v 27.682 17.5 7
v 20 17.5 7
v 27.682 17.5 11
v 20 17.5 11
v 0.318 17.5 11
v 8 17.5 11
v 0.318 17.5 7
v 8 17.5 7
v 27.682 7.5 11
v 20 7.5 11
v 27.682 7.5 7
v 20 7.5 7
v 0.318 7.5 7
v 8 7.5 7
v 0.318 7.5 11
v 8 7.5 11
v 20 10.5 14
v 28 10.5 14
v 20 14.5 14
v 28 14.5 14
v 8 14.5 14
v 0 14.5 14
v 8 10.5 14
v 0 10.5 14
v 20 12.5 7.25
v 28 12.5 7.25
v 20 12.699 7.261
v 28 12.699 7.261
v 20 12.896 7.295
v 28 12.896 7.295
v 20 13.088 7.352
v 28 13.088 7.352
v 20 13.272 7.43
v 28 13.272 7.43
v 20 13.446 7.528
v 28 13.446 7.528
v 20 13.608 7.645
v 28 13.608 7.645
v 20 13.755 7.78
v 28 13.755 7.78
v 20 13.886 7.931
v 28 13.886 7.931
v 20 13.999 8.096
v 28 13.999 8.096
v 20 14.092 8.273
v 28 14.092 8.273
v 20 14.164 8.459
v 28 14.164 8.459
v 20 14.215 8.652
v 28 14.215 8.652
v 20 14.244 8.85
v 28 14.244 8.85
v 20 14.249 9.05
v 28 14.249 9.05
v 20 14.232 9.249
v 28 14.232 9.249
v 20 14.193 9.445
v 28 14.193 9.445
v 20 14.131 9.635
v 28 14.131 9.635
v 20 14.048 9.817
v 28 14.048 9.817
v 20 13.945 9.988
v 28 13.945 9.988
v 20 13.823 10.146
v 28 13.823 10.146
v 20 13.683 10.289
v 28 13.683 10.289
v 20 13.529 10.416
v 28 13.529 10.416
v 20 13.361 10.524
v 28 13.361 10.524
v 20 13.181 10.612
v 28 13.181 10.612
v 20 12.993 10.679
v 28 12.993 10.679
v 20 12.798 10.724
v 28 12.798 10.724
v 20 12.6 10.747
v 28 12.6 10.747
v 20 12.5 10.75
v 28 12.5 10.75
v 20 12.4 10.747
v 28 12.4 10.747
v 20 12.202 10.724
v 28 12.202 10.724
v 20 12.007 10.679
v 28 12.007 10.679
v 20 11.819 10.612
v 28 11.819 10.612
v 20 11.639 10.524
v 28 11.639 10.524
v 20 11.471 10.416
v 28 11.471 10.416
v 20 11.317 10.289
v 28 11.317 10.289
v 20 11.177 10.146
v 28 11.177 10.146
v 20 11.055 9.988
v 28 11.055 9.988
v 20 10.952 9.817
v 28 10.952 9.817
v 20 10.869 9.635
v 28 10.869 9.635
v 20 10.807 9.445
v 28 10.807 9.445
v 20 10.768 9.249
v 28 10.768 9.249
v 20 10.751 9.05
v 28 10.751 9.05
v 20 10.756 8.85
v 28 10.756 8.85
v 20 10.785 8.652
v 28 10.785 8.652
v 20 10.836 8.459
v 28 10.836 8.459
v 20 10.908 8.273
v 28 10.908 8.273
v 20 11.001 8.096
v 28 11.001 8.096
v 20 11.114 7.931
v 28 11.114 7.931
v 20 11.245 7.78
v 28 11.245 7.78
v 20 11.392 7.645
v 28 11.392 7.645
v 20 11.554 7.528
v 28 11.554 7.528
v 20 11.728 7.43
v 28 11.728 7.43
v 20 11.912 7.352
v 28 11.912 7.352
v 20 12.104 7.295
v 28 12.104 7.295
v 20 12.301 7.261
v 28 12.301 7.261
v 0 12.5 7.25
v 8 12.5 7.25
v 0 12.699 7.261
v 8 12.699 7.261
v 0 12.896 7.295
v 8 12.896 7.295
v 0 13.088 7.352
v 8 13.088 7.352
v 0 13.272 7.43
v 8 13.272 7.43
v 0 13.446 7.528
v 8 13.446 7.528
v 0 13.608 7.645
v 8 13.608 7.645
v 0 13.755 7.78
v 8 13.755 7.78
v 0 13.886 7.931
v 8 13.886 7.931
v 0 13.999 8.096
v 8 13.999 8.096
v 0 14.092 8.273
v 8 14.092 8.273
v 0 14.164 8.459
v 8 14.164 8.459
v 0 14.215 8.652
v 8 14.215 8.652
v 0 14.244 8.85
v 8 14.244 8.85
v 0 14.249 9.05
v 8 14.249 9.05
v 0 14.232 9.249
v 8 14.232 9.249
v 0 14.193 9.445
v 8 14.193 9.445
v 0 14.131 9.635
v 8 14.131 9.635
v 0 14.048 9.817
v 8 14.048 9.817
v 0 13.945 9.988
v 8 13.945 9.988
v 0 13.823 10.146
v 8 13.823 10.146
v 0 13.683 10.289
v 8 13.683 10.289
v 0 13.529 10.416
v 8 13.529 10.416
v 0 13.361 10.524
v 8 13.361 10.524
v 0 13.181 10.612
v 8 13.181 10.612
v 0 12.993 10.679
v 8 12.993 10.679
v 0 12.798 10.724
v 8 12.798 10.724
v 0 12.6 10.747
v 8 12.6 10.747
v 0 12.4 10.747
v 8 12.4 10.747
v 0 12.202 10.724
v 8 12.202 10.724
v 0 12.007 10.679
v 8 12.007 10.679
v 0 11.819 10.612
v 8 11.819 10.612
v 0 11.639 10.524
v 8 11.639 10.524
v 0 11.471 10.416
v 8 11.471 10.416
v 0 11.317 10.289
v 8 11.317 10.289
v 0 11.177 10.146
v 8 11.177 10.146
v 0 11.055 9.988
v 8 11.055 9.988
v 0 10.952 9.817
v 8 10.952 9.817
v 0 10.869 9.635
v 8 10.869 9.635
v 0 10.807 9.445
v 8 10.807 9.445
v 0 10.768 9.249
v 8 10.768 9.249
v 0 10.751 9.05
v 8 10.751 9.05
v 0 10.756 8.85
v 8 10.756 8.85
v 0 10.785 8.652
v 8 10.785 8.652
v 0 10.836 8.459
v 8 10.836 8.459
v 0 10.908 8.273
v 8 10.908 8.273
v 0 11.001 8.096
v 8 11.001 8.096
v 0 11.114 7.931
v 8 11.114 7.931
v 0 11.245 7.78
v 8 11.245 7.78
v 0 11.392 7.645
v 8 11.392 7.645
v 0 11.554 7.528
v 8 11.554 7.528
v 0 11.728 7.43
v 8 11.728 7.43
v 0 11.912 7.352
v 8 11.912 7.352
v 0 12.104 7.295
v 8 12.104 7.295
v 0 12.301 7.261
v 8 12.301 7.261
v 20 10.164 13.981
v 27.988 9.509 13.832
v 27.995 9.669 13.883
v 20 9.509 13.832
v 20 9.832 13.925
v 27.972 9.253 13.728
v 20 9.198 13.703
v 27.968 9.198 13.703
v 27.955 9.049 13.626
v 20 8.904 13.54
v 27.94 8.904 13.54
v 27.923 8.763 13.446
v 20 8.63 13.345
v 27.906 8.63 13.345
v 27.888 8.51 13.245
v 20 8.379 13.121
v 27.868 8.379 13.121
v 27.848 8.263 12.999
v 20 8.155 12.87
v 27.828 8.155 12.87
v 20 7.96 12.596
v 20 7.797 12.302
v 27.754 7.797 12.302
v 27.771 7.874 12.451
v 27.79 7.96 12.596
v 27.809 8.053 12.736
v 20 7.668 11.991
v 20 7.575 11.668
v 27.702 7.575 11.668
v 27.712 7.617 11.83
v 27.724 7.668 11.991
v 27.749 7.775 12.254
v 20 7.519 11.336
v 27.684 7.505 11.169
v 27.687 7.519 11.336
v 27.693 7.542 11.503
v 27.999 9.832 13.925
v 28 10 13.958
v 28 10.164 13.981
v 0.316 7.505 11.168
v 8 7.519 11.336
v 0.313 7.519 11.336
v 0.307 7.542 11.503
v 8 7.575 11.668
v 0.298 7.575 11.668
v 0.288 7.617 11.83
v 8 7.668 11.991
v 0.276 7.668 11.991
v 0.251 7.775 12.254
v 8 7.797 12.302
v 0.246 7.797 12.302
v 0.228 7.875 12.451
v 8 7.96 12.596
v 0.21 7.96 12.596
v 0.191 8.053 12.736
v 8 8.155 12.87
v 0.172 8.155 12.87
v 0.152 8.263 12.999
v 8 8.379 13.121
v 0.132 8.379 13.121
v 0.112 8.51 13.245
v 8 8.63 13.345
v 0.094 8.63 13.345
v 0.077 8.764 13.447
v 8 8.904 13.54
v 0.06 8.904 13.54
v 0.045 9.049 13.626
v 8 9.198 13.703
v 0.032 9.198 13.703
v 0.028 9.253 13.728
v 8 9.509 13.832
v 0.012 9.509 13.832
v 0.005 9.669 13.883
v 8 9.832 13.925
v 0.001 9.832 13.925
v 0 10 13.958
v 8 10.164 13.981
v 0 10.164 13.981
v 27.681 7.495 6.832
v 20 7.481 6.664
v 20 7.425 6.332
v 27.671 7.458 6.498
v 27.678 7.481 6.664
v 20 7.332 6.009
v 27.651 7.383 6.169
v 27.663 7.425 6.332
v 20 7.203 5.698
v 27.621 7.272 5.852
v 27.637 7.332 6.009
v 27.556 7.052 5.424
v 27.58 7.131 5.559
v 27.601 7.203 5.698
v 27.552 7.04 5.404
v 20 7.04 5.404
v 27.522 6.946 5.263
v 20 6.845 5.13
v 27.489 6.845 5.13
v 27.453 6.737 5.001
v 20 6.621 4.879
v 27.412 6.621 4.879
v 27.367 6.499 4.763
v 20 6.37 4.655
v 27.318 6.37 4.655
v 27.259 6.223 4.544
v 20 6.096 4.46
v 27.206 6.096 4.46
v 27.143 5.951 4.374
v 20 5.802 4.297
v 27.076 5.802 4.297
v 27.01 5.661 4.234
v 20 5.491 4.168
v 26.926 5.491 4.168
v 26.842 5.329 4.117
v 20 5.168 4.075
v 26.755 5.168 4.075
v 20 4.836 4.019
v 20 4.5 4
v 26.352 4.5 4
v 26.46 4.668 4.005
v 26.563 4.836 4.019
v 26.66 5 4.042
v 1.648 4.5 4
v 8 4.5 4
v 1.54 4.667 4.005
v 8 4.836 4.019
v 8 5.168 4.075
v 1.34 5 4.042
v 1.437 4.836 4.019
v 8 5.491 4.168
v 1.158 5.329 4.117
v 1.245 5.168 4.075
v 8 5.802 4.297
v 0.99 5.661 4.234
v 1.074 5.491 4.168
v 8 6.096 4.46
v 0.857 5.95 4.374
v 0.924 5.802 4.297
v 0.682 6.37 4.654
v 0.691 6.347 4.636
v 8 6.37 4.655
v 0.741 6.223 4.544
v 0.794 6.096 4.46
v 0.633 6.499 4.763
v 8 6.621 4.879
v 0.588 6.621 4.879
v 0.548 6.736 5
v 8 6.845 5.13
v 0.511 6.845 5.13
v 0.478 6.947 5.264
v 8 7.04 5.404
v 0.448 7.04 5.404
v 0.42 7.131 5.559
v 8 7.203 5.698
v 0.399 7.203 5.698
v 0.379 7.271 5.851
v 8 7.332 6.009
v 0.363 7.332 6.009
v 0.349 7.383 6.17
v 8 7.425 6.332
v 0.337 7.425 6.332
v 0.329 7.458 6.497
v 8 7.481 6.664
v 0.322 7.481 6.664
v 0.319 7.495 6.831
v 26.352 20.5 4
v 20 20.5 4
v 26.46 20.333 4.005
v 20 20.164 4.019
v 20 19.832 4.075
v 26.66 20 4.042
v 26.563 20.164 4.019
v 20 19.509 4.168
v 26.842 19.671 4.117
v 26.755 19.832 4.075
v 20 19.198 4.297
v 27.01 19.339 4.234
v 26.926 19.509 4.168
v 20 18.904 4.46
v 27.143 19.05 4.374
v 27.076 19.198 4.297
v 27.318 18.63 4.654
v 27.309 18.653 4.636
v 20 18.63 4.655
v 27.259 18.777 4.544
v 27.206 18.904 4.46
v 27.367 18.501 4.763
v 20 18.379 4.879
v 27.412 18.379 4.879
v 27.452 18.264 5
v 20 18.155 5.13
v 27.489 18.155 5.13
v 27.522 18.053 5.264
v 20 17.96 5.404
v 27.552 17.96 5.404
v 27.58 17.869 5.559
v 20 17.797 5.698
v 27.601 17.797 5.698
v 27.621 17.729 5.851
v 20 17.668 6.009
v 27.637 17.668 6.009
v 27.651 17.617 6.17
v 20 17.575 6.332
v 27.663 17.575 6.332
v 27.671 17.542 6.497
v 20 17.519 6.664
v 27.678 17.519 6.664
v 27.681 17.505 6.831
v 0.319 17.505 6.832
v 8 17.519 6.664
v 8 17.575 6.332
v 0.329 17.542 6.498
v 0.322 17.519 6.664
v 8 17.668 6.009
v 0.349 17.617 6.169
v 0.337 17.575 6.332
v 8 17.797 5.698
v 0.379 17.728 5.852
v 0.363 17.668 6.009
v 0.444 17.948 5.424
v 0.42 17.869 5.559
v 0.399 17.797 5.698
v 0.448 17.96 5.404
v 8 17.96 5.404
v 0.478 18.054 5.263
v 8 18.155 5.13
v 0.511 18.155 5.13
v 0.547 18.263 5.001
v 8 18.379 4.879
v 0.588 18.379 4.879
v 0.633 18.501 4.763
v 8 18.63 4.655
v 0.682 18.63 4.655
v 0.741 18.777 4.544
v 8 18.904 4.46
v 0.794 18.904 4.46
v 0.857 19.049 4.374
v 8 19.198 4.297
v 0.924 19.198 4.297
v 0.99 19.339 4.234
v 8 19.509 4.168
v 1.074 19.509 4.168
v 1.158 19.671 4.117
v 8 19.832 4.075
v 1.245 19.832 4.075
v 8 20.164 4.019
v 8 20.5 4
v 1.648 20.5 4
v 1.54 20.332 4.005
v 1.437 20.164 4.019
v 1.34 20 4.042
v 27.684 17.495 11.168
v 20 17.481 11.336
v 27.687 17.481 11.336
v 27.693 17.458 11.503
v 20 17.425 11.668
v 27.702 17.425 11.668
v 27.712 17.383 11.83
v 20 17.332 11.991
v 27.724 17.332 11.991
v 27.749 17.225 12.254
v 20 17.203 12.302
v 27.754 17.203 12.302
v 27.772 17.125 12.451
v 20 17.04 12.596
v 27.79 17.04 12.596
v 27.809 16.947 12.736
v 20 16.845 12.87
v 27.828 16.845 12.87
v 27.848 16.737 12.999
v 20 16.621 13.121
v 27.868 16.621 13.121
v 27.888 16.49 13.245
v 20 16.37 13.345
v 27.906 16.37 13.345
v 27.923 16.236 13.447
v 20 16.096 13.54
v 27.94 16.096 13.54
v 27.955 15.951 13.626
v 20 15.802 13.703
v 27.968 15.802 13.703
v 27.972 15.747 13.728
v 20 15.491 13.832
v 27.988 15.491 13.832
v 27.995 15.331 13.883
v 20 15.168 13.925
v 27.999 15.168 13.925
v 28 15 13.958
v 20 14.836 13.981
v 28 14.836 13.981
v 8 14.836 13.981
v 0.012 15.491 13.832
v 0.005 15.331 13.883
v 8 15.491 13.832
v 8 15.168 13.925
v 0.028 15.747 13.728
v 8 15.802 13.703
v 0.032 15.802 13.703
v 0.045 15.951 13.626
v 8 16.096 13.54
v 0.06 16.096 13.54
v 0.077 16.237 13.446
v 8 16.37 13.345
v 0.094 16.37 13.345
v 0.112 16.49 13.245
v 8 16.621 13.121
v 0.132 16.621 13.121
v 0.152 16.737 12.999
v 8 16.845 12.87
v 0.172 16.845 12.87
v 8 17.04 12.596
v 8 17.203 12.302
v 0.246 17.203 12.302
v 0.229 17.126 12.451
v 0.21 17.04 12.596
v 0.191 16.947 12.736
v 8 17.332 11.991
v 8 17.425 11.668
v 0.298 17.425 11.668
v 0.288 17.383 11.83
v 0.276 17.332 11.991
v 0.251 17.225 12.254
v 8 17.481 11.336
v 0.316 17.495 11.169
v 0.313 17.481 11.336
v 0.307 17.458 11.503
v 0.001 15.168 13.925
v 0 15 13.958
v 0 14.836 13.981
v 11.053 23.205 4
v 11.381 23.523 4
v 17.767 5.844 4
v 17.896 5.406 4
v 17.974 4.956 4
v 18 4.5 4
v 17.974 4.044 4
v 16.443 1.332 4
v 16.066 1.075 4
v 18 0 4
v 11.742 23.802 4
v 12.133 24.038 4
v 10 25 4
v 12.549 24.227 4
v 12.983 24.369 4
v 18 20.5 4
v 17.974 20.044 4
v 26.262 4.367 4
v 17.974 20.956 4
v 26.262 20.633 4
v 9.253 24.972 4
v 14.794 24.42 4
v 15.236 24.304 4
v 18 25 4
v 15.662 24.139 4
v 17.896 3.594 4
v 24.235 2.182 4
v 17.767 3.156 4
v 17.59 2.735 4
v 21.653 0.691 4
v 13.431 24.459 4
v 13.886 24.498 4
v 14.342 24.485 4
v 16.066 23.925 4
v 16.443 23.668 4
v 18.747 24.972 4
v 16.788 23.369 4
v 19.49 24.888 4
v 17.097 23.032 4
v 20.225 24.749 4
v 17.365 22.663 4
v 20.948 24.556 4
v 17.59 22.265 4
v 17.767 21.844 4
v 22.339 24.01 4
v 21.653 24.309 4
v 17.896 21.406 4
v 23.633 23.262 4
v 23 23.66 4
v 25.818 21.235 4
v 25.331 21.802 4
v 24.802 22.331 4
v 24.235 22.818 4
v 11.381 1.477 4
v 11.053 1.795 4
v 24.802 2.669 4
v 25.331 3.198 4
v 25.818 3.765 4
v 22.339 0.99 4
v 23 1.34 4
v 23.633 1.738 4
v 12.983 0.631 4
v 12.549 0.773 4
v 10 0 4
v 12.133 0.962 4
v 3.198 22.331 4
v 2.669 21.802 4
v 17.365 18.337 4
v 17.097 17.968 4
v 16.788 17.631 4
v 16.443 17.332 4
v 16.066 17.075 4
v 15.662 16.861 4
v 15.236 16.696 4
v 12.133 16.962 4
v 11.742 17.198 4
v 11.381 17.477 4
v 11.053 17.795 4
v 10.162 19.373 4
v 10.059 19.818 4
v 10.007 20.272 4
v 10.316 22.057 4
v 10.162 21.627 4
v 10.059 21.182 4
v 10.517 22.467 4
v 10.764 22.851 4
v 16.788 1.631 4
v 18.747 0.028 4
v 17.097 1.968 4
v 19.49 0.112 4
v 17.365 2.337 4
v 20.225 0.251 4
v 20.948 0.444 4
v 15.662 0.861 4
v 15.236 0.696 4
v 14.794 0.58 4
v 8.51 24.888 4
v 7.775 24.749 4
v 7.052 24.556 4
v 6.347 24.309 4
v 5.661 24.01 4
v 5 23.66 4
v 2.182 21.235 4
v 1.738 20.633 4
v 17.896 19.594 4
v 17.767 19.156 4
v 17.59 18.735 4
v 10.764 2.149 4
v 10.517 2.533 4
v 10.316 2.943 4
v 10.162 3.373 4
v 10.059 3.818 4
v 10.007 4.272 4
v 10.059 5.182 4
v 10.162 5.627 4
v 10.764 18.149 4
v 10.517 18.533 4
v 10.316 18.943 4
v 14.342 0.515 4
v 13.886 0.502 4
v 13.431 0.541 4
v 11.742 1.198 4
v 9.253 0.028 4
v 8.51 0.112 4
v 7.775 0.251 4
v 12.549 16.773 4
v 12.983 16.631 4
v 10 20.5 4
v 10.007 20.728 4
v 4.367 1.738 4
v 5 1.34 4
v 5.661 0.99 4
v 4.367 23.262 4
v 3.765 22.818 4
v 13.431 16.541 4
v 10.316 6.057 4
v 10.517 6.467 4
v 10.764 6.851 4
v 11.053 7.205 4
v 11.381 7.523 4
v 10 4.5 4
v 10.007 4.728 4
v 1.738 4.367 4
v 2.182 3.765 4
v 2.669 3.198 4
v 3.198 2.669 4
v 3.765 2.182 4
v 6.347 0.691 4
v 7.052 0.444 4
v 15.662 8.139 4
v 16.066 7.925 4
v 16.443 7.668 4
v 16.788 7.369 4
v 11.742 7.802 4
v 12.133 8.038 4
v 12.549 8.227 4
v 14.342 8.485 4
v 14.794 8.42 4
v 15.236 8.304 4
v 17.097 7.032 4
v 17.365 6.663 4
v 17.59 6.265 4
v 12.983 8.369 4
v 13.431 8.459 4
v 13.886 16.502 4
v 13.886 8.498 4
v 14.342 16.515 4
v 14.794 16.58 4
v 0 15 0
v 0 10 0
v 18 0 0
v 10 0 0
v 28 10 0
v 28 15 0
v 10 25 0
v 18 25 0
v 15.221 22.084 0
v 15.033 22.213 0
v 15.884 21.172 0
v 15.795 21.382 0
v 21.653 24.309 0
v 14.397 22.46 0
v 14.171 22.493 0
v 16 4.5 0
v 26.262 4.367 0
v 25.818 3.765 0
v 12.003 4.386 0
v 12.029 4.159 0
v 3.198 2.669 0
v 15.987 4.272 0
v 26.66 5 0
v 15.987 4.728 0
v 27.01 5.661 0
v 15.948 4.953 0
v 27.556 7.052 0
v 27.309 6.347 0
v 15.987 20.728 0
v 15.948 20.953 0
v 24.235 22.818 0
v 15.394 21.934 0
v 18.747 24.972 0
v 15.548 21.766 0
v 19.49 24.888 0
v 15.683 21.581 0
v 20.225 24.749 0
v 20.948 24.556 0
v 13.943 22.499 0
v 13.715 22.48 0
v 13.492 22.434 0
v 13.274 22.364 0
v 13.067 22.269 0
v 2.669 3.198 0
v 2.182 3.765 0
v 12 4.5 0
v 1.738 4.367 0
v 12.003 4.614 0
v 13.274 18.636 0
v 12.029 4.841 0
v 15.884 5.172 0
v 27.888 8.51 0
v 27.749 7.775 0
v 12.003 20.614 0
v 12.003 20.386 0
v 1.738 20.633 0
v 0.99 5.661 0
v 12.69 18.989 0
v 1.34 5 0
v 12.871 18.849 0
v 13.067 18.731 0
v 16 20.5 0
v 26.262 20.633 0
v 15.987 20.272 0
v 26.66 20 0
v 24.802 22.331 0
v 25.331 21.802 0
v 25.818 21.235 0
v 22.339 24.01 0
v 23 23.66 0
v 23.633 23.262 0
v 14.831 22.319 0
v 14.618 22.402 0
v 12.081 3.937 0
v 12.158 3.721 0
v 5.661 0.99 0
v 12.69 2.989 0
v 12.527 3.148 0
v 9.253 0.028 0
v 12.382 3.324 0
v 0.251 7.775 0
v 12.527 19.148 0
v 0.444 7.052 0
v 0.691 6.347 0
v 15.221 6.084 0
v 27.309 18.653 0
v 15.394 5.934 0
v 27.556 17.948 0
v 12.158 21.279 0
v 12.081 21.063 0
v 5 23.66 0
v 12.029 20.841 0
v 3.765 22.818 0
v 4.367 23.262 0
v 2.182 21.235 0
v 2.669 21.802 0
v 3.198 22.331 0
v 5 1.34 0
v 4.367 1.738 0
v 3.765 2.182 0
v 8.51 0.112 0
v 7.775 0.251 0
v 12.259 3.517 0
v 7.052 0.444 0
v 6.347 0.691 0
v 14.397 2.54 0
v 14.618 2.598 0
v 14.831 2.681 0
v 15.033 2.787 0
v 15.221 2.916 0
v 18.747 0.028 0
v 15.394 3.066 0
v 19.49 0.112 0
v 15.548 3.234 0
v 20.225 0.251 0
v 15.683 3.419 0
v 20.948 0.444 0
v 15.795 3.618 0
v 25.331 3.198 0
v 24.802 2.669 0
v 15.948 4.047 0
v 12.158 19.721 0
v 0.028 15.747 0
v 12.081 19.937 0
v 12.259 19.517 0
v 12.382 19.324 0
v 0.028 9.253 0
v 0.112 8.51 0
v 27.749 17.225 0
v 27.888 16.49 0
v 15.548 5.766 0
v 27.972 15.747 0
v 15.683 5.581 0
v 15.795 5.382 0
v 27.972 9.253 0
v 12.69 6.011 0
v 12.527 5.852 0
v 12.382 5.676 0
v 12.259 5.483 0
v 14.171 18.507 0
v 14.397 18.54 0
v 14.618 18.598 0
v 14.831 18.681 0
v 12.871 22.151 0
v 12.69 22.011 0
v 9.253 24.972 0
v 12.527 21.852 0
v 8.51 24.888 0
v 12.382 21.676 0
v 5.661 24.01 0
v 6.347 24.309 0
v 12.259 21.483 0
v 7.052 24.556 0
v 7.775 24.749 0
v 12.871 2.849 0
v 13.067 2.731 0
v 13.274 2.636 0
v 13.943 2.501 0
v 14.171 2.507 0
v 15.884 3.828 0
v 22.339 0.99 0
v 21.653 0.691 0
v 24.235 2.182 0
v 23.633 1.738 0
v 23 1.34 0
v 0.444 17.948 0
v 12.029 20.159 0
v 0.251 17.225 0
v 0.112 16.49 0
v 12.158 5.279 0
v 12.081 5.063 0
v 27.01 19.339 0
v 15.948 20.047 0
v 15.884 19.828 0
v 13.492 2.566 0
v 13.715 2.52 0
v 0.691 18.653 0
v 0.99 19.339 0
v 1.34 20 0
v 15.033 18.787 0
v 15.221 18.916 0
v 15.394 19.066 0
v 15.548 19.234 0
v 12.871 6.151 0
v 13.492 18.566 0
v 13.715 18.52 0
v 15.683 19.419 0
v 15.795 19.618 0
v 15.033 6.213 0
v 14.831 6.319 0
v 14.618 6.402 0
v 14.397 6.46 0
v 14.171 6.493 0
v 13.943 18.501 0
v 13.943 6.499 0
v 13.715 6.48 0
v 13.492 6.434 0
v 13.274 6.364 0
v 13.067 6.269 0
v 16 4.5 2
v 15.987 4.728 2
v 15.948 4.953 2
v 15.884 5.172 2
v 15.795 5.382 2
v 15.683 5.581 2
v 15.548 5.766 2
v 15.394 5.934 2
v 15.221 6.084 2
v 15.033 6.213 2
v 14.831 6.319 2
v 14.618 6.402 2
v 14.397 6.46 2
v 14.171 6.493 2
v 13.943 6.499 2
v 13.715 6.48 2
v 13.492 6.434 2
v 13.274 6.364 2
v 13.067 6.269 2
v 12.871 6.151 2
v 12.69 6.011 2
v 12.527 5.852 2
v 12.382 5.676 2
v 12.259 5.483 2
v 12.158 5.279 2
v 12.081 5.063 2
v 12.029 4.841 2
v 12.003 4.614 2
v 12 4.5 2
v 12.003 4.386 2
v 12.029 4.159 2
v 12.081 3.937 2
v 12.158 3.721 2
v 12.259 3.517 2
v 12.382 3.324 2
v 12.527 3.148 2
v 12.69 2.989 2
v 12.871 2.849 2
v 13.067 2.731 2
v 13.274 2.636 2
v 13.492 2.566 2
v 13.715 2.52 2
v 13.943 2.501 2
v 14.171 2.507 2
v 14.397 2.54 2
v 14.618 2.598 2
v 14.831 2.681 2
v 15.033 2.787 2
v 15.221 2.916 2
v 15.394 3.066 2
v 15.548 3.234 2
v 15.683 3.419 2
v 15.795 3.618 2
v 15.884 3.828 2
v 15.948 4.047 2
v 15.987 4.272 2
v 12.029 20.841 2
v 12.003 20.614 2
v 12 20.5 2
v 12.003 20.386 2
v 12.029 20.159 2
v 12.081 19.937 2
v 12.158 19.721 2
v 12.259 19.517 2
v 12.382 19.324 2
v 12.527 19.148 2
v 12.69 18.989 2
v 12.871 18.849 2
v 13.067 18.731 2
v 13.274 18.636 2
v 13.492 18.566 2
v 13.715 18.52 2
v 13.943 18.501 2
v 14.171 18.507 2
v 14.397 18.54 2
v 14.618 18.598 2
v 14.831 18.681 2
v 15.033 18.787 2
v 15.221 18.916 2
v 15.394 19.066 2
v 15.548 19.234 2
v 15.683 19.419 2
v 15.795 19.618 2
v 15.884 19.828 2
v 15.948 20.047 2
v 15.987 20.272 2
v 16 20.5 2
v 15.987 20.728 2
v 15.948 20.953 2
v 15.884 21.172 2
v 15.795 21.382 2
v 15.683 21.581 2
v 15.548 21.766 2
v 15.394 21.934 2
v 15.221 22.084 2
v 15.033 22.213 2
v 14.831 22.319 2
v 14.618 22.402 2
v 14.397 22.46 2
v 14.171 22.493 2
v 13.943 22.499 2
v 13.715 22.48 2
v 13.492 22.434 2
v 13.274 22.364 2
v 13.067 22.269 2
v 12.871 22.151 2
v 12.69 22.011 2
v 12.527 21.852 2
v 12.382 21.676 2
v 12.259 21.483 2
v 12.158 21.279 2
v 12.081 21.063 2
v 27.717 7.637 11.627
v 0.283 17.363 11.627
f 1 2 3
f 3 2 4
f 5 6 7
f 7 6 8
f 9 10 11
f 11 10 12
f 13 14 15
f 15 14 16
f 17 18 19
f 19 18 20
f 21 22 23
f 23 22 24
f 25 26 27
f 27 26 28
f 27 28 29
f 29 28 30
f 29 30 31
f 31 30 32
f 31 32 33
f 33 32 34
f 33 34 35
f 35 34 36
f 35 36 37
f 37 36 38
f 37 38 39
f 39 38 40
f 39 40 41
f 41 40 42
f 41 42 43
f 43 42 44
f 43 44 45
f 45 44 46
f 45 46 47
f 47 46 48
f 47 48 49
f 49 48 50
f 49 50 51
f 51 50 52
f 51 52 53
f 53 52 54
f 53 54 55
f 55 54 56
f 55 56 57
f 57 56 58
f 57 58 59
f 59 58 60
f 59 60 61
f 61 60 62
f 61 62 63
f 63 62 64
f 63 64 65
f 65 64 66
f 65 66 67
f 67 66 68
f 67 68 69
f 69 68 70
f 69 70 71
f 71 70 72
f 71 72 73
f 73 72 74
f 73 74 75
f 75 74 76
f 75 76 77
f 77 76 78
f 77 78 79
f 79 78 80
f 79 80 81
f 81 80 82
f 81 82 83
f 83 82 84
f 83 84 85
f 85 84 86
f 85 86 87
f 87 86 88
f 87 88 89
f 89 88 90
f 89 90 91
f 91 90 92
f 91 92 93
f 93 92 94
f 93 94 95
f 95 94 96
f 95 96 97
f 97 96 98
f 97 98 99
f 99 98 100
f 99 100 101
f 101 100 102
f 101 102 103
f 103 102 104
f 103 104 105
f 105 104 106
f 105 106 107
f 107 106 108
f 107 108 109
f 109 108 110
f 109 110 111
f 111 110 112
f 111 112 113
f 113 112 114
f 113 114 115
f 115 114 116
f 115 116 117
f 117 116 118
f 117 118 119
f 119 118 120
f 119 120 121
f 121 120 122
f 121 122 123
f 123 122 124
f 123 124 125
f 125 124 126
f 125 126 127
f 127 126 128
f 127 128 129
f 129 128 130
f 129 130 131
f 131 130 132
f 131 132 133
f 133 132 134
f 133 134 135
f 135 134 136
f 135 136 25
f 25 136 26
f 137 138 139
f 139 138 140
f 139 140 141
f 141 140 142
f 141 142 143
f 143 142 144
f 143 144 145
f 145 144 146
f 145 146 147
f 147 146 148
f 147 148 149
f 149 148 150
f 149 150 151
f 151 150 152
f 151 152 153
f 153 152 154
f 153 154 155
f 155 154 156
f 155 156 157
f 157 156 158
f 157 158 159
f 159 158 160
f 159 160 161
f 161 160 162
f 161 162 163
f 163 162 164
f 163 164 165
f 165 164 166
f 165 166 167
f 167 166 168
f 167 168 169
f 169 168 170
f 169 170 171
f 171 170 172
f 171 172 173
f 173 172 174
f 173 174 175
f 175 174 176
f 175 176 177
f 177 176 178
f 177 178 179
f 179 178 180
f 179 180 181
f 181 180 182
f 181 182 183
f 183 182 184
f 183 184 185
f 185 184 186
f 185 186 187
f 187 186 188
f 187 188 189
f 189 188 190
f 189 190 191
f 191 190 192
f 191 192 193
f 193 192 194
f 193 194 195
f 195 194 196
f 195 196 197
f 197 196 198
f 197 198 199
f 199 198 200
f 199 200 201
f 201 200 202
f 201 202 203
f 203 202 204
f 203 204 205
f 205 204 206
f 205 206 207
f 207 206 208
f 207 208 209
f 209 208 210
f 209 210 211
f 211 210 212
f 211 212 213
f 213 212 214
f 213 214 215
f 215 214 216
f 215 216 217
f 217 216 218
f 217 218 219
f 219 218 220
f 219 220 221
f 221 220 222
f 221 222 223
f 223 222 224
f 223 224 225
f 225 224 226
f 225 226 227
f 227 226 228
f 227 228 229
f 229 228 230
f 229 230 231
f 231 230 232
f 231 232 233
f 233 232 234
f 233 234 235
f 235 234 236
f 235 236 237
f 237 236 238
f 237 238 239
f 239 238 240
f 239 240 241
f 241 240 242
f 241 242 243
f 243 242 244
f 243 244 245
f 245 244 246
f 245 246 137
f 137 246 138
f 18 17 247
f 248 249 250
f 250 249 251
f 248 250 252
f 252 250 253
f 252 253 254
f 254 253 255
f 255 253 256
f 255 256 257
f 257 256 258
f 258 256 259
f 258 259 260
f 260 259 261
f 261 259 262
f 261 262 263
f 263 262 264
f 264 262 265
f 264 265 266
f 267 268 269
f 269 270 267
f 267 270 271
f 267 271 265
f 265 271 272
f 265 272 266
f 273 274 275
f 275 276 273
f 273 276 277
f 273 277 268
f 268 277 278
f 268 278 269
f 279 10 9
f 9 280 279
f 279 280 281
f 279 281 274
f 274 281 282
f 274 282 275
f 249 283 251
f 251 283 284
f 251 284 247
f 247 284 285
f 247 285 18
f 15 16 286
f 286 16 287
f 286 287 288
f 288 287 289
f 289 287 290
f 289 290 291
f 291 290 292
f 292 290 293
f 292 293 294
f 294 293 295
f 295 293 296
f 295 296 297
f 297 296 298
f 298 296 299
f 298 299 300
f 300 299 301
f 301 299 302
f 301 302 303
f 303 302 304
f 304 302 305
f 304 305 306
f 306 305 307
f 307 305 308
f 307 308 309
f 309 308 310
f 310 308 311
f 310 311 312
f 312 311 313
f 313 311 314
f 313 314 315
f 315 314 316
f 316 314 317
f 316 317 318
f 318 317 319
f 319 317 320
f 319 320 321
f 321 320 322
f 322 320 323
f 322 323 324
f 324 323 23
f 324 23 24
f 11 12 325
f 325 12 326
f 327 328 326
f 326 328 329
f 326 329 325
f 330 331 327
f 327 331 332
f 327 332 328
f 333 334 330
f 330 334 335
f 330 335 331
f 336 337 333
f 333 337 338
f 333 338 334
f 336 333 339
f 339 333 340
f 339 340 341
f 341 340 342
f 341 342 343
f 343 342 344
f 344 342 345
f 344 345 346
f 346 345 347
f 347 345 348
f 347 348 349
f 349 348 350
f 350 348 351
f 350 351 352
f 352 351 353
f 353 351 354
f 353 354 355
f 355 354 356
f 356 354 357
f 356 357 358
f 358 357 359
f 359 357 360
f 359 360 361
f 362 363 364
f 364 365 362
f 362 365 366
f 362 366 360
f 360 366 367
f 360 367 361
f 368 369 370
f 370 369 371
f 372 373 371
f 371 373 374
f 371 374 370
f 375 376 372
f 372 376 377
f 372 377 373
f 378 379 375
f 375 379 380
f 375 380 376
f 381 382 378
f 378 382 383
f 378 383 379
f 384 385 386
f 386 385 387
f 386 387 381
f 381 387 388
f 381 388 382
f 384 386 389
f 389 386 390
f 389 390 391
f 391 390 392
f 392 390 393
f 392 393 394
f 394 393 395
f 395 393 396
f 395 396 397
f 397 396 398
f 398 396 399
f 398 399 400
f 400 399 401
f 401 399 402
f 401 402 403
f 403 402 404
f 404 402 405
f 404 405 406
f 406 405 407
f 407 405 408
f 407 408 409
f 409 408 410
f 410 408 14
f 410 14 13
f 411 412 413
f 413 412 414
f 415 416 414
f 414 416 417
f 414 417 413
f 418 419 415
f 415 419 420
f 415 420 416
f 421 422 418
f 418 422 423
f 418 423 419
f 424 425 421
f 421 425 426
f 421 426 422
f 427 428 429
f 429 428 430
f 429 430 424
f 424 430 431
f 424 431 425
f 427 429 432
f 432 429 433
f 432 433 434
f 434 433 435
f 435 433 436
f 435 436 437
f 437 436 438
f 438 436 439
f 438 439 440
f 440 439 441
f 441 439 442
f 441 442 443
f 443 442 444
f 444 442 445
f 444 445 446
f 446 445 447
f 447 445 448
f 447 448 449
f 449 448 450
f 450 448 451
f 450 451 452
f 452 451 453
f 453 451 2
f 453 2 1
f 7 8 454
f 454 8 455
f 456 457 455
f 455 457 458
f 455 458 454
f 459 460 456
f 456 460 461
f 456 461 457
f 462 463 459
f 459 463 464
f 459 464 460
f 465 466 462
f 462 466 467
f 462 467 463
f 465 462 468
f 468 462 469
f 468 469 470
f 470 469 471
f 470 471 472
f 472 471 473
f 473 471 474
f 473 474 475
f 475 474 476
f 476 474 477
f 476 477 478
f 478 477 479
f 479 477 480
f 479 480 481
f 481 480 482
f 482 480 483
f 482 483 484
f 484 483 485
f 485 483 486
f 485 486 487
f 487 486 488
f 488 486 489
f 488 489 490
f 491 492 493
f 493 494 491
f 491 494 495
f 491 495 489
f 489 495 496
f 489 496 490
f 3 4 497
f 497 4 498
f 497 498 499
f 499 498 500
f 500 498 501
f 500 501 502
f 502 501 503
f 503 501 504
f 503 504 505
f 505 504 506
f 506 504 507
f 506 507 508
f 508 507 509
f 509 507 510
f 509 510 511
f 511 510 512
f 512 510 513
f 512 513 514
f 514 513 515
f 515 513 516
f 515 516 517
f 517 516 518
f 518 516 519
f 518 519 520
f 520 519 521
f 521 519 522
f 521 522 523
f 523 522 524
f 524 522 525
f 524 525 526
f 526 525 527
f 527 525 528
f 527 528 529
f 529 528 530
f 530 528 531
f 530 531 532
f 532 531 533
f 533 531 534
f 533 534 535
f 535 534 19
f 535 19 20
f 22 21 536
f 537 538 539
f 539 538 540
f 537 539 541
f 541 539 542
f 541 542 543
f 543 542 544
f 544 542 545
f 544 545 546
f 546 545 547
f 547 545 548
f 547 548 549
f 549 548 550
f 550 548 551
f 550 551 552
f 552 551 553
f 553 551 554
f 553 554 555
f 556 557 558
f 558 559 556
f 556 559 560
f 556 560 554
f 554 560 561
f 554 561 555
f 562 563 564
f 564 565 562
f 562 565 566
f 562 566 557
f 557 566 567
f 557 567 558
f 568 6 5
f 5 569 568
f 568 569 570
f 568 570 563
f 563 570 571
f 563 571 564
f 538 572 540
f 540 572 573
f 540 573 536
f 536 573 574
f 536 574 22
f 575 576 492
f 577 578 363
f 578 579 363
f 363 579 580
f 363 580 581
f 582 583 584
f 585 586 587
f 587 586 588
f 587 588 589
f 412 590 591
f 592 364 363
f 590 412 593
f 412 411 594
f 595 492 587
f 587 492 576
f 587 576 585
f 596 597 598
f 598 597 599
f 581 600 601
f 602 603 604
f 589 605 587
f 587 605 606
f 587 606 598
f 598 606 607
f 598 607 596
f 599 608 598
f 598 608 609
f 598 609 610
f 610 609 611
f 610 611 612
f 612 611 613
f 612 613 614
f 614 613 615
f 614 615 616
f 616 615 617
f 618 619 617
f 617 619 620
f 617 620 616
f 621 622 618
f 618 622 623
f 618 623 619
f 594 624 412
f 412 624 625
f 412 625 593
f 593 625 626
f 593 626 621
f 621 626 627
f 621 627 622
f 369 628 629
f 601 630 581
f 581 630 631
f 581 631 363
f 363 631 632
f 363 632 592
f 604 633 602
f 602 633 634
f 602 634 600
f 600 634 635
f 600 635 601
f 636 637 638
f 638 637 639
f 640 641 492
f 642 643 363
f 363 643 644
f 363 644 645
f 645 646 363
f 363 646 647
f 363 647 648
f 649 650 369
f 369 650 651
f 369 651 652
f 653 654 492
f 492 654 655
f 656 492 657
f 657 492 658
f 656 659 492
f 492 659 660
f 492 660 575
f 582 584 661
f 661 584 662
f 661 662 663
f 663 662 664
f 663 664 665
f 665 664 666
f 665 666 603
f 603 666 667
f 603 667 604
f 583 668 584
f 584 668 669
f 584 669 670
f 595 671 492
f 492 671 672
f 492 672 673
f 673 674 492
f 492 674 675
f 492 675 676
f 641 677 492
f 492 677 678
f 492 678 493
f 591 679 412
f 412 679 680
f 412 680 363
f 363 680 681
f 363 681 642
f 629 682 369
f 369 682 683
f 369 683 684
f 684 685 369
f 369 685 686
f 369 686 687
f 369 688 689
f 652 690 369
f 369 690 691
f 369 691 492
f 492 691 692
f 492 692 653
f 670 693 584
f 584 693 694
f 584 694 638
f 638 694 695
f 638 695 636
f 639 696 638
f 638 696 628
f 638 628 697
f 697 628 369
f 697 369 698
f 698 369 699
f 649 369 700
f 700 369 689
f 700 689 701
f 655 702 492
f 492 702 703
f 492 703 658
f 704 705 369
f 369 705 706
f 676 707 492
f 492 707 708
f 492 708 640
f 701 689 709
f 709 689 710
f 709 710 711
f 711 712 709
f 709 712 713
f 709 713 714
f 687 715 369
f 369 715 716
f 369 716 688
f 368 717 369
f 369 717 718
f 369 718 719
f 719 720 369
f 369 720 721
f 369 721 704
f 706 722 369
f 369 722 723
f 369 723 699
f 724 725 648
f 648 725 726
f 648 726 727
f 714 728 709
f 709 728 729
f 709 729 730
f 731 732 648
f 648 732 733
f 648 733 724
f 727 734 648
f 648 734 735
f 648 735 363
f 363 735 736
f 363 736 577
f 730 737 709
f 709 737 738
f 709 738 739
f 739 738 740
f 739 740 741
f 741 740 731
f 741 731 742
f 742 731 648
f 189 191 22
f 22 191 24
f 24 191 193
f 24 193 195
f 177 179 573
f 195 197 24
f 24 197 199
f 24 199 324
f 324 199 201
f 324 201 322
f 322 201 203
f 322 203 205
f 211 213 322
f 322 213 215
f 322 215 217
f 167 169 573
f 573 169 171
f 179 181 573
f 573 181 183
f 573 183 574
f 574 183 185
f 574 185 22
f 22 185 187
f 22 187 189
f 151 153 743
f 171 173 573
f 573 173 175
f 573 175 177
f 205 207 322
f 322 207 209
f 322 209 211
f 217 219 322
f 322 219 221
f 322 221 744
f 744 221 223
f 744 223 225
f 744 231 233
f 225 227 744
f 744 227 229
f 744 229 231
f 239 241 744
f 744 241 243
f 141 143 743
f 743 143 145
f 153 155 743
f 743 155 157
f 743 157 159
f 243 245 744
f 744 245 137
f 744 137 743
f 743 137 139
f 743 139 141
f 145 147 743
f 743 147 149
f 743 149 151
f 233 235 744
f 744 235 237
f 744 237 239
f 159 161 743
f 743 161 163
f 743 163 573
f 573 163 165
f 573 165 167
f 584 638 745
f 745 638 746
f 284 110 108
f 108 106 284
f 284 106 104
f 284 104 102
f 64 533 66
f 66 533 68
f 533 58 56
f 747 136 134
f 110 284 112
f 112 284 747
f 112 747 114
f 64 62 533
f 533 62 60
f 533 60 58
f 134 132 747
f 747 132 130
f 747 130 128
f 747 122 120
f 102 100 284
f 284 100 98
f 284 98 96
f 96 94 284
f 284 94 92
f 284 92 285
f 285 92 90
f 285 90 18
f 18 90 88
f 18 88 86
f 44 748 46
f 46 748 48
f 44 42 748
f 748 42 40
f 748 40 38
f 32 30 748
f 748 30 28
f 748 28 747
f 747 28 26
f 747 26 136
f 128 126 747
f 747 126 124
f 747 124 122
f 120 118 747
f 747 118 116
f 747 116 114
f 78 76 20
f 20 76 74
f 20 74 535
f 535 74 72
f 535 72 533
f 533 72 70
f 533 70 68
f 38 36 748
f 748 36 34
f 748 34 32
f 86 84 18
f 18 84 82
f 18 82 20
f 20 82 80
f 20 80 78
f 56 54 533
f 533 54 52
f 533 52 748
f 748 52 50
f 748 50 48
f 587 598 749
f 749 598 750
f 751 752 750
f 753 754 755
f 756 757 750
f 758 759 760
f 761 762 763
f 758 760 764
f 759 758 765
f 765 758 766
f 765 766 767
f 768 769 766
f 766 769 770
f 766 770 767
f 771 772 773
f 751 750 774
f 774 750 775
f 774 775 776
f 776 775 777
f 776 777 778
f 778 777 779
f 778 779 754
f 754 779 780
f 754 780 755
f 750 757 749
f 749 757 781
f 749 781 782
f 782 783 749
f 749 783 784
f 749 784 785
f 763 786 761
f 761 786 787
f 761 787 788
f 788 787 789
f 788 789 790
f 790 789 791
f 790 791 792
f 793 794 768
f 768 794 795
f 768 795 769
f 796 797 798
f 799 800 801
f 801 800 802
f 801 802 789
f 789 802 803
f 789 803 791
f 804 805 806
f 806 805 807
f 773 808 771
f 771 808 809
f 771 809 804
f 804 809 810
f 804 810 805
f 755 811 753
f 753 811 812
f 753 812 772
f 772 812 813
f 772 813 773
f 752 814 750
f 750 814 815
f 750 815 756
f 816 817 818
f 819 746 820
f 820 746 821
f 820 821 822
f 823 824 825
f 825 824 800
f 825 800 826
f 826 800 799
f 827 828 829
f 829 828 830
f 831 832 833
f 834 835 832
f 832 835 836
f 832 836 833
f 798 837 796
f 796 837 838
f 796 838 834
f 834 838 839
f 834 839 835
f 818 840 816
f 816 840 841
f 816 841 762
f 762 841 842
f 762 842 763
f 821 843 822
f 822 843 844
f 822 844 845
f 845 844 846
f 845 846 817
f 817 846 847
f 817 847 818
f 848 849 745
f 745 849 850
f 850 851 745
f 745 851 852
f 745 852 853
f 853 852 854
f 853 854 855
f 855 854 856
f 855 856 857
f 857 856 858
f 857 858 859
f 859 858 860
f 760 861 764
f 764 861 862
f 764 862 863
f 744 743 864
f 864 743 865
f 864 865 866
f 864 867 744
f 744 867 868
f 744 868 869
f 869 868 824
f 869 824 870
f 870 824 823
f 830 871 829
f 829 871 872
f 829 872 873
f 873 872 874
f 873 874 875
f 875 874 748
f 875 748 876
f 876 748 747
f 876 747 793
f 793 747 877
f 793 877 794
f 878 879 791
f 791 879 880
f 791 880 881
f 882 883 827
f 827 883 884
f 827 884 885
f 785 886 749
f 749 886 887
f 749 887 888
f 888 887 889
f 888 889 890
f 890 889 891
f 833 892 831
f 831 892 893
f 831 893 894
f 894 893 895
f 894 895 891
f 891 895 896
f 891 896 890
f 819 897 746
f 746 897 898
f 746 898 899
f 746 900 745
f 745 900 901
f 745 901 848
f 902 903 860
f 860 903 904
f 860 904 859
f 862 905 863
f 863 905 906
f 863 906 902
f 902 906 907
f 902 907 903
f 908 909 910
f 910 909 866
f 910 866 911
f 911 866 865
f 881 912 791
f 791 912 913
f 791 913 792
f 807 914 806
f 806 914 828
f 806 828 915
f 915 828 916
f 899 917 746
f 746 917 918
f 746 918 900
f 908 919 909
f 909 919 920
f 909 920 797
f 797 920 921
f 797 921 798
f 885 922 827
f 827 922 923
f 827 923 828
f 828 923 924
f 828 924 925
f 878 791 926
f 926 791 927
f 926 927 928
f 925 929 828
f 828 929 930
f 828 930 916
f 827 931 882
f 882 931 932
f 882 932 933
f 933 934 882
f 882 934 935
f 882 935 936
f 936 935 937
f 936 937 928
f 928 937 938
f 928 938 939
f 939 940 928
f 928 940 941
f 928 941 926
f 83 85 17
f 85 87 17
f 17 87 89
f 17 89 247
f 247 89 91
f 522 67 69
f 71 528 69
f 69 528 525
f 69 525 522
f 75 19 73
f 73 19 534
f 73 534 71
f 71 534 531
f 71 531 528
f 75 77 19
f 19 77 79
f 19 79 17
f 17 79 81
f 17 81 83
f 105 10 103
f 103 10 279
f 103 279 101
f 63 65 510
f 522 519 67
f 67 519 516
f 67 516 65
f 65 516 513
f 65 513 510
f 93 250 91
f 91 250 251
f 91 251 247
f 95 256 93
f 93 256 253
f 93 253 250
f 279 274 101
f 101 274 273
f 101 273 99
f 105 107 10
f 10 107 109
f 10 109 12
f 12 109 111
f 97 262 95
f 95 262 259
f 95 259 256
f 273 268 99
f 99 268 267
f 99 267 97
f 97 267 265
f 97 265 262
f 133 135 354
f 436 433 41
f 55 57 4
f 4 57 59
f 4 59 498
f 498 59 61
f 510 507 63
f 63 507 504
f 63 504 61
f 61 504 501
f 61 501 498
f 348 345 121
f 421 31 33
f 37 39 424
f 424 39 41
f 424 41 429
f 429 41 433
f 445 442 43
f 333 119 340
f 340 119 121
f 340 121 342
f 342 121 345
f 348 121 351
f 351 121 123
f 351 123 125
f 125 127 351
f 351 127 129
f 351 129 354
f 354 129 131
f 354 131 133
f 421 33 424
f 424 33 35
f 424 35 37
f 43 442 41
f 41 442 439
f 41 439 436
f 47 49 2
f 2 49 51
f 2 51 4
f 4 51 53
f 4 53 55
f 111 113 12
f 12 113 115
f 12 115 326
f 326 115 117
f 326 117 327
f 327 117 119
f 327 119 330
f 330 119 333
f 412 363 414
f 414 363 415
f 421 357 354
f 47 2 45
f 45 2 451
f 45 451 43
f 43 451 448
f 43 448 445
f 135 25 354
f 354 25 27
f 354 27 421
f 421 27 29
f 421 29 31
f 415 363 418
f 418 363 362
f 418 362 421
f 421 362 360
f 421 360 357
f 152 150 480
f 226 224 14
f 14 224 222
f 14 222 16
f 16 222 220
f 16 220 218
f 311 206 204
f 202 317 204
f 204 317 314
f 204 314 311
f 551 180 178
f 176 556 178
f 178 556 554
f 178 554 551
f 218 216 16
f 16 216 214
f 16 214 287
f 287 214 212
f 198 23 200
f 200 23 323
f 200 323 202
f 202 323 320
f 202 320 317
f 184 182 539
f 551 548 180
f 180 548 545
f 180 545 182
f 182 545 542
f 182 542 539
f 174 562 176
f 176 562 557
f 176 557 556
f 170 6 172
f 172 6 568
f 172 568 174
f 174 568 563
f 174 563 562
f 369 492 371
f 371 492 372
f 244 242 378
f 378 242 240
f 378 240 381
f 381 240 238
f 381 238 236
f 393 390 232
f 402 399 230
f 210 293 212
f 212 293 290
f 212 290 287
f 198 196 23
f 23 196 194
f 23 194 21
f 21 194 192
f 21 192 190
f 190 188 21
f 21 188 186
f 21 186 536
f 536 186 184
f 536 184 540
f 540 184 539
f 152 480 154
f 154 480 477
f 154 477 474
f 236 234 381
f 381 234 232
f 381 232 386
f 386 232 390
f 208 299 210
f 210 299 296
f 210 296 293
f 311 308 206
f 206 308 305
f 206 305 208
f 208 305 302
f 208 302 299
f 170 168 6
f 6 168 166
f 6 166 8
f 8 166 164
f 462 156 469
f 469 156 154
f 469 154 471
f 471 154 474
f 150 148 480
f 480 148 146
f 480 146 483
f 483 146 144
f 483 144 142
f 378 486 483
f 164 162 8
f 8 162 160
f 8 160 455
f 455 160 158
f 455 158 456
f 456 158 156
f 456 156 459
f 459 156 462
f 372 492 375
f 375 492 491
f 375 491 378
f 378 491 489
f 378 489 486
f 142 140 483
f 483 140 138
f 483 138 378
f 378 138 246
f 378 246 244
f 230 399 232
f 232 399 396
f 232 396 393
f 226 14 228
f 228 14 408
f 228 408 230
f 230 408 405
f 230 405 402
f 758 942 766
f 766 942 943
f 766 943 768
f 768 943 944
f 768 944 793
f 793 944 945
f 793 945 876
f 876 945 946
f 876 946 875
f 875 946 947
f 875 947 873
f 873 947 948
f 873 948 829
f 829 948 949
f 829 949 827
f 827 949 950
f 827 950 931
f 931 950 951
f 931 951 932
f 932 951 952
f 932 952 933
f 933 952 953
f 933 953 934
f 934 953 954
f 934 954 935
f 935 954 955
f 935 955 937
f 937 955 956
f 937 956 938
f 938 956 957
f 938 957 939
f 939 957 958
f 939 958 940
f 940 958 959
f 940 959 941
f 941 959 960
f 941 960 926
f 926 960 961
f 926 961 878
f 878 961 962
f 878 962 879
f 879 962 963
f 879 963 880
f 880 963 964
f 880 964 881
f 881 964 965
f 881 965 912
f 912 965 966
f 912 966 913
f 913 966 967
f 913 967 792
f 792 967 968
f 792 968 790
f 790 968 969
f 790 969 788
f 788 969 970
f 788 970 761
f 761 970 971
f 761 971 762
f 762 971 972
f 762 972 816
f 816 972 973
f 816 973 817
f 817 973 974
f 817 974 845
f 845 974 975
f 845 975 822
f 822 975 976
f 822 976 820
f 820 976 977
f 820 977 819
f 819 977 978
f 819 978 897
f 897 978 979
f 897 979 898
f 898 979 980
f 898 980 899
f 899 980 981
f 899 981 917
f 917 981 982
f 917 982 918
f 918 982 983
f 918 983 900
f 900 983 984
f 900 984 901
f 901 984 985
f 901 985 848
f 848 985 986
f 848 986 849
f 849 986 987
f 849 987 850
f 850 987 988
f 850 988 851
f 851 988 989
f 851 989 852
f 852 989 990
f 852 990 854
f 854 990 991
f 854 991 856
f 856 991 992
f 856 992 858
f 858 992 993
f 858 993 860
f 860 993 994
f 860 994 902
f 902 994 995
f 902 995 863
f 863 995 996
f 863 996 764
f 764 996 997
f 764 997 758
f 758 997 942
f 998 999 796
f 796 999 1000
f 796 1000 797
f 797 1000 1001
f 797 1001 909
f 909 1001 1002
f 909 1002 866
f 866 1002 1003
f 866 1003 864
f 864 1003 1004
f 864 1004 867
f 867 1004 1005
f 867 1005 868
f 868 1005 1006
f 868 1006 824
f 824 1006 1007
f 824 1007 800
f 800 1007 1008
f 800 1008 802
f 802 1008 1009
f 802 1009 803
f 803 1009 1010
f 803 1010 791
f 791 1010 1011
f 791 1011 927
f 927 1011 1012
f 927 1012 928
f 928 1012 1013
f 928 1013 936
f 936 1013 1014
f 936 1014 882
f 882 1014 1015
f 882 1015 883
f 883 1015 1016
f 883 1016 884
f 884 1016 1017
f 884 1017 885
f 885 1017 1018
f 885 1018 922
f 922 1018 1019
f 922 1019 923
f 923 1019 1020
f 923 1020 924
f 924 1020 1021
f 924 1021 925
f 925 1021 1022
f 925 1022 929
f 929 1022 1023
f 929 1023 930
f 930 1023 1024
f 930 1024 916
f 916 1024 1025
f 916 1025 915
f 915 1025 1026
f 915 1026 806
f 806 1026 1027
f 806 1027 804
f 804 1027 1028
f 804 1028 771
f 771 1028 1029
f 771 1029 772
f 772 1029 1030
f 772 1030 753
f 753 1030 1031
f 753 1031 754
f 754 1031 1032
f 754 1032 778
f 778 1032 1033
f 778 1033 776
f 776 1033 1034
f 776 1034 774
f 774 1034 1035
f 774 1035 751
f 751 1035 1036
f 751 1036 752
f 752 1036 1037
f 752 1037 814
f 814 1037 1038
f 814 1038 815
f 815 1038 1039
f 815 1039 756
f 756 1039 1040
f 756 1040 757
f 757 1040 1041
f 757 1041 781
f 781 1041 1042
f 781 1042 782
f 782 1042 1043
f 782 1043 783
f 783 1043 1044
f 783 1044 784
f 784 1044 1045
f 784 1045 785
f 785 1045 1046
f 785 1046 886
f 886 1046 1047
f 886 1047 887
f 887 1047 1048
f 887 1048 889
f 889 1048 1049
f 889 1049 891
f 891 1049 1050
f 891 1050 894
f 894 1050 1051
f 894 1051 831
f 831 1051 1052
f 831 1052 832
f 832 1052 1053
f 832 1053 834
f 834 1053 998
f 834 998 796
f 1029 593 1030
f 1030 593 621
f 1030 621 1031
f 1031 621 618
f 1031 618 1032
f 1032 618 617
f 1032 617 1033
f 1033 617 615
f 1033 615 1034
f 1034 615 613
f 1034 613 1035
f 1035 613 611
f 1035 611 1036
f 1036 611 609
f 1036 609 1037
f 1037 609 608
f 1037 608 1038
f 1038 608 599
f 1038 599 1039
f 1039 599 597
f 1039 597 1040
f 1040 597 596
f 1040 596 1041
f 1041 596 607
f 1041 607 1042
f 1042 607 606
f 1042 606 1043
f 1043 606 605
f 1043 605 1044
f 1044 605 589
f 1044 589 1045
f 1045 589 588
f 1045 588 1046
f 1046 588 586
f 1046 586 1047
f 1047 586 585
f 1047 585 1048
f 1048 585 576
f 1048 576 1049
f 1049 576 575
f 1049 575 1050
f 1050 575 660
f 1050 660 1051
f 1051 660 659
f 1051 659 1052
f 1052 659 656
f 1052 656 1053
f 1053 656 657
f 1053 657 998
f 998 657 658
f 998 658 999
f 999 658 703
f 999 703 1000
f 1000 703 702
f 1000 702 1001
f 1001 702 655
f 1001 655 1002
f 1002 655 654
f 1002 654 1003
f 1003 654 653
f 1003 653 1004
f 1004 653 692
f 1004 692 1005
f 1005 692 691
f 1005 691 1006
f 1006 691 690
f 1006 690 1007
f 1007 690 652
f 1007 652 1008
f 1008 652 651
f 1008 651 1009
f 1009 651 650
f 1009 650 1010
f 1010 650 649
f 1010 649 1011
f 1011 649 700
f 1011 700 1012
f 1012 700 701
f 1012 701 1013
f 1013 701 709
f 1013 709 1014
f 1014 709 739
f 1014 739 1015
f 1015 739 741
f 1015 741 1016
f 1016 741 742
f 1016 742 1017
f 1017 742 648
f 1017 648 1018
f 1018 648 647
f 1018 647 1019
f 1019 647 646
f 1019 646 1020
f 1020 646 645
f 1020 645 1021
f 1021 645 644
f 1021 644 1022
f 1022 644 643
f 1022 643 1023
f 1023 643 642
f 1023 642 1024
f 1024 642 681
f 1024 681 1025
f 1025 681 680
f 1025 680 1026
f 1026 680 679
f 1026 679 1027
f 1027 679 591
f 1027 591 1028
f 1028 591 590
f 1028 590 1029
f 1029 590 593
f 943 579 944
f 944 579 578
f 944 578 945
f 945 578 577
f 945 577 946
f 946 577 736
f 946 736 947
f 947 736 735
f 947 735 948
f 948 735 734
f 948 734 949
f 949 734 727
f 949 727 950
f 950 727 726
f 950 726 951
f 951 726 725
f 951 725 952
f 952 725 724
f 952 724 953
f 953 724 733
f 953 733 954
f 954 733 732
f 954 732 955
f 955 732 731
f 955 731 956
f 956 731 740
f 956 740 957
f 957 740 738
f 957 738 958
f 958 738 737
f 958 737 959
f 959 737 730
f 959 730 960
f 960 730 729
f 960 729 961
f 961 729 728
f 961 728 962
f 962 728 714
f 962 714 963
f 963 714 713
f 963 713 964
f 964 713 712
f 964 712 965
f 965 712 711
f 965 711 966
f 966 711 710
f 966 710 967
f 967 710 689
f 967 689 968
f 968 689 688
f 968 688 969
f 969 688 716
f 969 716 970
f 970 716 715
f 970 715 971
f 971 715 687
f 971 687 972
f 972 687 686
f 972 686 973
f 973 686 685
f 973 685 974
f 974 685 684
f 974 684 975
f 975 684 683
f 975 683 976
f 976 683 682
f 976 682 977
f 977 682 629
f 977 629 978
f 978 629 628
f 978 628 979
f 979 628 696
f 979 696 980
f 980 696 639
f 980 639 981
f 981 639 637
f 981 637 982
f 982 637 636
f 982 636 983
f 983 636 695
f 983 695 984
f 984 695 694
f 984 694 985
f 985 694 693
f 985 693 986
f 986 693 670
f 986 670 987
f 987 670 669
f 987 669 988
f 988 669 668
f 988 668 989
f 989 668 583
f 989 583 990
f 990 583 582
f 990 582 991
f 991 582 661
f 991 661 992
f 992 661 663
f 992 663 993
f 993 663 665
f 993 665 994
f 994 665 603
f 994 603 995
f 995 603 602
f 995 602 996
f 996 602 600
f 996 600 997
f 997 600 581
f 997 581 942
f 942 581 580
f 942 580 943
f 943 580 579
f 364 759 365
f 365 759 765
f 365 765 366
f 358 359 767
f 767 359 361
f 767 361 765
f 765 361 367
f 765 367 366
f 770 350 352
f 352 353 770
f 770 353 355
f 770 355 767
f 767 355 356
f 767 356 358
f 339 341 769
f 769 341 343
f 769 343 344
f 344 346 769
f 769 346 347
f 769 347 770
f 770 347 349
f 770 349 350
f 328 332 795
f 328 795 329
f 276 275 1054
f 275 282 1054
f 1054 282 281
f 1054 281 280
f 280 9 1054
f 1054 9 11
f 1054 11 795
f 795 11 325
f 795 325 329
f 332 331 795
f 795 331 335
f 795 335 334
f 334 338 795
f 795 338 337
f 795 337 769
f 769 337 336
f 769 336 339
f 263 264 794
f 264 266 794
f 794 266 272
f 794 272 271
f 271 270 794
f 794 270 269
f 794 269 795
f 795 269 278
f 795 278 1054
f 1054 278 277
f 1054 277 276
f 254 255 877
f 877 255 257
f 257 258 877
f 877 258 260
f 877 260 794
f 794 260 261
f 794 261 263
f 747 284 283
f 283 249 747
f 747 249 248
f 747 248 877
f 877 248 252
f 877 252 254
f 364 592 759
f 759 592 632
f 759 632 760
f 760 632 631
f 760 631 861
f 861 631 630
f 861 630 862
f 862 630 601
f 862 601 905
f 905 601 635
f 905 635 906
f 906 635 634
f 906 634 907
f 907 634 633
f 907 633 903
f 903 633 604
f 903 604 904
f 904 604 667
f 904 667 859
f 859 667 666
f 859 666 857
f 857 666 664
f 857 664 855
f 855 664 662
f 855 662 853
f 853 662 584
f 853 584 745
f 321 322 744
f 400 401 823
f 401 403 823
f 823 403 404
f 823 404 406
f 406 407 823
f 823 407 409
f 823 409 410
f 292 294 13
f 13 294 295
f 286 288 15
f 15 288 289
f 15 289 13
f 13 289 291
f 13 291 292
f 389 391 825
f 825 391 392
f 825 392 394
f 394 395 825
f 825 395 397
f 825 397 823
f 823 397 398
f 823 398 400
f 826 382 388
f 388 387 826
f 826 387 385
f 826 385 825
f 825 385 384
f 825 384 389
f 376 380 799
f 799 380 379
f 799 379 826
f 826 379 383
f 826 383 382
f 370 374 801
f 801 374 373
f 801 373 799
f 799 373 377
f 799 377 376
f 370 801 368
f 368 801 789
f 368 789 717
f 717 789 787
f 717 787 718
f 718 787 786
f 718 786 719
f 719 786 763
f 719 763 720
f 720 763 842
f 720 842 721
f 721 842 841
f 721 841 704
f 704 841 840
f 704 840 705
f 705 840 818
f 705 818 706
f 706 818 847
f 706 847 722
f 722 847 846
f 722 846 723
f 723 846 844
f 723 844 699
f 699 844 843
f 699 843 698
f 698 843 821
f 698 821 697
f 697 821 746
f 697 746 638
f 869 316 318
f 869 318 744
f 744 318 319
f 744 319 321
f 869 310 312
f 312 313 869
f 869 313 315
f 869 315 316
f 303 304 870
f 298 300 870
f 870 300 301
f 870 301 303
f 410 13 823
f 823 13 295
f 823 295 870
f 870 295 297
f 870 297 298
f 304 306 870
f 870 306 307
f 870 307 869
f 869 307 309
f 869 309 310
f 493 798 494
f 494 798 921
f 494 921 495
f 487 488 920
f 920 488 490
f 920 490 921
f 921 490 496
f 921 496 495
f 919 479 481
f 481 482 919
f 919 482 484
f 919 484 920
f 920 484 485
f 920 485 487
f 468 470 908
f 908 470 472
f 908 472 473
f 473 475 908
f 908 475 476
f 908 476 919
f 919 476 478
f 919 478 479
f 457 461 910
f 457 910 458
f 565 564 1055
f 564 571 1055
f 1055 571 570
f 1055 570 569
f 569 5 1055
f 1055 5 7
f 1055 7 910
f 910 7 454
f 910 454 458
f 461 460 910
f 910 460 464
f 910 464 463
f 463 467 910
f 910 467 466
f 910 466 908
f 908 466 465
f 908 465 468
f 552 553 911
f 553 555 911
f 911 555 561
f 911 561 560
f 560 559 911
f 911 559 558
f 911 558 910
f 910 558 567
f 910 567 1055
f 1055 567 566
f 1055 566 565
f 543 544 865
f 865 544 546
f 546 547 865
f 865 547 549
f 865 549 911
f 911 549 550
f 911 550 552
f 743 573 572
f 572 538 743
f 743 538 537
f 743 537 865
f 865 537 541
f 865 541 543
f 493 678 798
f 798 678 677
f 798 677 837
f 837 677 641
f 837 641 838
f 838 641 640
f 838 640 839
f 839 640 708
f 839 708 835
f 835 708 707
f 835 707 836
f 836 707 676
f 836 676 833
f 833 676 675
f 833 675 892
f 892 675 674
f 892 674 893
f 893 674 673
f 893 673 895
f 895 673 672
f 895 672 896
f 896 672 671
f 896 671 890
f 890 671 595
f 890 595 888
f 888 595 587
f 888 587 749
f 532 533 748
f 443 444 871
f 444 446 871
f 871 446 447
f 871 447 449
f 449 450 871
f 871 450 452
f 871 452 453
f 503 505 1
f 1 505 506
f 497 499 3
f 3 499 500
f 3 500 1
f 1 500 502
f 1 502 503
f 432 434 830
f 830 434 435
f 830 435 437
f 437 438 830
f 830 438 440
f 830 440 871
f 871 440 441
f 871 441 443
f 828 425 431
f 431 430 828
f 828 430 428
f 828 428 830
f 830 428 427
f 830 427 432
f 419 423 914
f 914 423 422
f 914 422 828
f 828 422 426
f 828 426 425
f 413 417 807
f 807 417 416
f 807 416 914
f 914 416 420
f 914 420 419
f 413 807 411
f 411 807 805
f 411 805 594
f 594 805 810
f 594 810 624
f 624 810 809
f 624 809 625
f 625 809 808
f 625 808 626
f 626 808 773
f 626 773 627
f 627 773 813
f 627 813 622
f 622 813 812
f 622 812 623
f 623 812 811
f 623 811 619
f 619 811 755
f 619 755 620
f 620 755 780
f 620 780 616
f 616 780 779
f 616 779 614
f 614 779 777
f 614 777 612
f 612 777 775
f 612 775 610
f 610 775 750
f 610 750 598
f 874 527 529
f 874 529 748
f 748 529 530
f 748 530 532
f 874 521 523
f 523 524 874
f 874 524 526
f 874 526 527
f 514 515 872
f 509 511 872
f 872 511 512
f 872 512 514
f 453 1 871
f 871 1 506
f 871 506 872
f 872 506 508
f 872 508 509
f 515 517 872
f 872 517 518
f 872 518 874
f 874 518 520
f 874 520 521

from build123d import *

# Parameters (mm, degrees)
ESQUISSE1_W                  = 28
ESQUISSE1_H                  = 25
BOSS_EXTRU_1_DEPTH           = 4
ESQUISSE2_W                  = 28
ESQUISSE2_H                  = 10
BOSS_EXTRU_2_DEPTH           = 10
ENL_V_MAT_EXTRU_1_DEPTH      = 41.062451248
ENL_V_MAT_EXTRU_1_DEPTH_BACK = 41.062451248
ESQUISSE3_R                  = 1.75
CONG_1_R                     = 3
ESQUISSE4_W                  = 12
ESQUISSE4_H                  = 16
ENL_V_MAT_EXTRU_2_DEPTH      = 10
ENL_V_MAT_EXTRU_3_DEPTH      = 39.845849199
ENL_V_MAT_EXTRU_3_DEPTH_BACK = 39.845849199
ESQUISSE5_R                  = 2
CHANFREIN1_SIZE              = 2
CONG_2_R                     = 10


with BuildPart() as part:
    # Esquisse1 → Boss.-Extru.1 (new body)
    with BuildSketch(Plane.XY):
        with Locations((14, 12.5)):
            Rectangle(ESQUISSE1_W, ESQUISSE1_H)
    extrude(amount=BOSS_EXTRU_1_DEPTH)

    # Esquisse2 → Boss.-Extru.2 (add)
    with BuildSketch(Plane.XY.offset(4)):
        with Locations((14, 12.5)):
            Rectangle(ESQUISSE2_W, ESQUISSE2_H)
    extrude(amount=BOSS_EXTRU_2_DEPTH)

    # Esquisse3 → Enlèv. mat.-Extru.1 (cut, two sides: drawn at the far end of the back side and taken through both)
    with BuildSketch(Plane(origin=(28, 0, 0), x_dir=(0, 0, -1), z_dir=(1, 0, 0)).offset(-ENL_V_MAT_EXTRU_1_DEPTH_BACK)):
        with Locations((-9, 12.5)):
            Circle(ESQUISSE3_R)
    extrude(amount=ENL_V_MAT_EXTRU_1_DEPTH + ENL_V_MAT_EXTRU_1_DEPTH_BACK, mode=Mode.SUBTRACT)

    # Congé1
    cong_1_edges = [part.edges().sort_by_distance(p)[0] for p in [
        (14, 17.5, 4),
        (14, 7.5, 4),
        (14, 17.5, 14),
        (14, 7.5, 14),
    ]]
    fillet(cong_1_edges, radius=CONG_1_R)

    # Esquisse4 → Enlèv. mat.-Extru.2 (cut)
    with BuildSketch(Plane.XY.offset(4)):
        with Locations((14, 12.5)):
            Rectangle(ESQUISSE4_W, ESQUISSE4_H)
    extrude(amount=ENL_V_MAT_EXTRU_2_DEPTH, mode=Mode.SUBTRACT)

    # Esquisse5 → Enlèv. mat.-Extru.3 (cut, two sides: drawn at the far end of the back side and taken through both)
    with BuildSketch(Plane.XY.offset(4).offset(-ENL_V_MAT_EXTRU_3_DEPTH_BACK)):
        with Locations((14, 20.5)):
            Circle(ESQUISSE5_R)
        with Locations(Location((14, 4.5, 0), (0, 0, 180))):
            Circle(ESQUISSE5_R)
    extrude(amount=ENL_V_MAT_EXTRU_3_DEPTH + ENL_V_MAT_EXTRU_3_DEPTH_BACK, mode=Mode.SUBTRACT)

    # Chanfrein1
    chanfrein1_edges = [part.edges().sort_by_distance(p)[0] for p in [
        (16, 4.5, 4),
        (12, 20.5, 4),
    ]]
    chamfer(chanfrein1_edges, length=CHANFREIN1_SIZE)

    # Congé2
    cong_2_edges = [part.edges().sort_by_distance(p)[0] for p in [
        (28, 0, 2),
        (0, 0, 2),
        (0, 25, 2),
        (28, 25, 2),
    ]]
    fillet(cong_2_edges, radius=CONG_2_R)


solid = part.part
